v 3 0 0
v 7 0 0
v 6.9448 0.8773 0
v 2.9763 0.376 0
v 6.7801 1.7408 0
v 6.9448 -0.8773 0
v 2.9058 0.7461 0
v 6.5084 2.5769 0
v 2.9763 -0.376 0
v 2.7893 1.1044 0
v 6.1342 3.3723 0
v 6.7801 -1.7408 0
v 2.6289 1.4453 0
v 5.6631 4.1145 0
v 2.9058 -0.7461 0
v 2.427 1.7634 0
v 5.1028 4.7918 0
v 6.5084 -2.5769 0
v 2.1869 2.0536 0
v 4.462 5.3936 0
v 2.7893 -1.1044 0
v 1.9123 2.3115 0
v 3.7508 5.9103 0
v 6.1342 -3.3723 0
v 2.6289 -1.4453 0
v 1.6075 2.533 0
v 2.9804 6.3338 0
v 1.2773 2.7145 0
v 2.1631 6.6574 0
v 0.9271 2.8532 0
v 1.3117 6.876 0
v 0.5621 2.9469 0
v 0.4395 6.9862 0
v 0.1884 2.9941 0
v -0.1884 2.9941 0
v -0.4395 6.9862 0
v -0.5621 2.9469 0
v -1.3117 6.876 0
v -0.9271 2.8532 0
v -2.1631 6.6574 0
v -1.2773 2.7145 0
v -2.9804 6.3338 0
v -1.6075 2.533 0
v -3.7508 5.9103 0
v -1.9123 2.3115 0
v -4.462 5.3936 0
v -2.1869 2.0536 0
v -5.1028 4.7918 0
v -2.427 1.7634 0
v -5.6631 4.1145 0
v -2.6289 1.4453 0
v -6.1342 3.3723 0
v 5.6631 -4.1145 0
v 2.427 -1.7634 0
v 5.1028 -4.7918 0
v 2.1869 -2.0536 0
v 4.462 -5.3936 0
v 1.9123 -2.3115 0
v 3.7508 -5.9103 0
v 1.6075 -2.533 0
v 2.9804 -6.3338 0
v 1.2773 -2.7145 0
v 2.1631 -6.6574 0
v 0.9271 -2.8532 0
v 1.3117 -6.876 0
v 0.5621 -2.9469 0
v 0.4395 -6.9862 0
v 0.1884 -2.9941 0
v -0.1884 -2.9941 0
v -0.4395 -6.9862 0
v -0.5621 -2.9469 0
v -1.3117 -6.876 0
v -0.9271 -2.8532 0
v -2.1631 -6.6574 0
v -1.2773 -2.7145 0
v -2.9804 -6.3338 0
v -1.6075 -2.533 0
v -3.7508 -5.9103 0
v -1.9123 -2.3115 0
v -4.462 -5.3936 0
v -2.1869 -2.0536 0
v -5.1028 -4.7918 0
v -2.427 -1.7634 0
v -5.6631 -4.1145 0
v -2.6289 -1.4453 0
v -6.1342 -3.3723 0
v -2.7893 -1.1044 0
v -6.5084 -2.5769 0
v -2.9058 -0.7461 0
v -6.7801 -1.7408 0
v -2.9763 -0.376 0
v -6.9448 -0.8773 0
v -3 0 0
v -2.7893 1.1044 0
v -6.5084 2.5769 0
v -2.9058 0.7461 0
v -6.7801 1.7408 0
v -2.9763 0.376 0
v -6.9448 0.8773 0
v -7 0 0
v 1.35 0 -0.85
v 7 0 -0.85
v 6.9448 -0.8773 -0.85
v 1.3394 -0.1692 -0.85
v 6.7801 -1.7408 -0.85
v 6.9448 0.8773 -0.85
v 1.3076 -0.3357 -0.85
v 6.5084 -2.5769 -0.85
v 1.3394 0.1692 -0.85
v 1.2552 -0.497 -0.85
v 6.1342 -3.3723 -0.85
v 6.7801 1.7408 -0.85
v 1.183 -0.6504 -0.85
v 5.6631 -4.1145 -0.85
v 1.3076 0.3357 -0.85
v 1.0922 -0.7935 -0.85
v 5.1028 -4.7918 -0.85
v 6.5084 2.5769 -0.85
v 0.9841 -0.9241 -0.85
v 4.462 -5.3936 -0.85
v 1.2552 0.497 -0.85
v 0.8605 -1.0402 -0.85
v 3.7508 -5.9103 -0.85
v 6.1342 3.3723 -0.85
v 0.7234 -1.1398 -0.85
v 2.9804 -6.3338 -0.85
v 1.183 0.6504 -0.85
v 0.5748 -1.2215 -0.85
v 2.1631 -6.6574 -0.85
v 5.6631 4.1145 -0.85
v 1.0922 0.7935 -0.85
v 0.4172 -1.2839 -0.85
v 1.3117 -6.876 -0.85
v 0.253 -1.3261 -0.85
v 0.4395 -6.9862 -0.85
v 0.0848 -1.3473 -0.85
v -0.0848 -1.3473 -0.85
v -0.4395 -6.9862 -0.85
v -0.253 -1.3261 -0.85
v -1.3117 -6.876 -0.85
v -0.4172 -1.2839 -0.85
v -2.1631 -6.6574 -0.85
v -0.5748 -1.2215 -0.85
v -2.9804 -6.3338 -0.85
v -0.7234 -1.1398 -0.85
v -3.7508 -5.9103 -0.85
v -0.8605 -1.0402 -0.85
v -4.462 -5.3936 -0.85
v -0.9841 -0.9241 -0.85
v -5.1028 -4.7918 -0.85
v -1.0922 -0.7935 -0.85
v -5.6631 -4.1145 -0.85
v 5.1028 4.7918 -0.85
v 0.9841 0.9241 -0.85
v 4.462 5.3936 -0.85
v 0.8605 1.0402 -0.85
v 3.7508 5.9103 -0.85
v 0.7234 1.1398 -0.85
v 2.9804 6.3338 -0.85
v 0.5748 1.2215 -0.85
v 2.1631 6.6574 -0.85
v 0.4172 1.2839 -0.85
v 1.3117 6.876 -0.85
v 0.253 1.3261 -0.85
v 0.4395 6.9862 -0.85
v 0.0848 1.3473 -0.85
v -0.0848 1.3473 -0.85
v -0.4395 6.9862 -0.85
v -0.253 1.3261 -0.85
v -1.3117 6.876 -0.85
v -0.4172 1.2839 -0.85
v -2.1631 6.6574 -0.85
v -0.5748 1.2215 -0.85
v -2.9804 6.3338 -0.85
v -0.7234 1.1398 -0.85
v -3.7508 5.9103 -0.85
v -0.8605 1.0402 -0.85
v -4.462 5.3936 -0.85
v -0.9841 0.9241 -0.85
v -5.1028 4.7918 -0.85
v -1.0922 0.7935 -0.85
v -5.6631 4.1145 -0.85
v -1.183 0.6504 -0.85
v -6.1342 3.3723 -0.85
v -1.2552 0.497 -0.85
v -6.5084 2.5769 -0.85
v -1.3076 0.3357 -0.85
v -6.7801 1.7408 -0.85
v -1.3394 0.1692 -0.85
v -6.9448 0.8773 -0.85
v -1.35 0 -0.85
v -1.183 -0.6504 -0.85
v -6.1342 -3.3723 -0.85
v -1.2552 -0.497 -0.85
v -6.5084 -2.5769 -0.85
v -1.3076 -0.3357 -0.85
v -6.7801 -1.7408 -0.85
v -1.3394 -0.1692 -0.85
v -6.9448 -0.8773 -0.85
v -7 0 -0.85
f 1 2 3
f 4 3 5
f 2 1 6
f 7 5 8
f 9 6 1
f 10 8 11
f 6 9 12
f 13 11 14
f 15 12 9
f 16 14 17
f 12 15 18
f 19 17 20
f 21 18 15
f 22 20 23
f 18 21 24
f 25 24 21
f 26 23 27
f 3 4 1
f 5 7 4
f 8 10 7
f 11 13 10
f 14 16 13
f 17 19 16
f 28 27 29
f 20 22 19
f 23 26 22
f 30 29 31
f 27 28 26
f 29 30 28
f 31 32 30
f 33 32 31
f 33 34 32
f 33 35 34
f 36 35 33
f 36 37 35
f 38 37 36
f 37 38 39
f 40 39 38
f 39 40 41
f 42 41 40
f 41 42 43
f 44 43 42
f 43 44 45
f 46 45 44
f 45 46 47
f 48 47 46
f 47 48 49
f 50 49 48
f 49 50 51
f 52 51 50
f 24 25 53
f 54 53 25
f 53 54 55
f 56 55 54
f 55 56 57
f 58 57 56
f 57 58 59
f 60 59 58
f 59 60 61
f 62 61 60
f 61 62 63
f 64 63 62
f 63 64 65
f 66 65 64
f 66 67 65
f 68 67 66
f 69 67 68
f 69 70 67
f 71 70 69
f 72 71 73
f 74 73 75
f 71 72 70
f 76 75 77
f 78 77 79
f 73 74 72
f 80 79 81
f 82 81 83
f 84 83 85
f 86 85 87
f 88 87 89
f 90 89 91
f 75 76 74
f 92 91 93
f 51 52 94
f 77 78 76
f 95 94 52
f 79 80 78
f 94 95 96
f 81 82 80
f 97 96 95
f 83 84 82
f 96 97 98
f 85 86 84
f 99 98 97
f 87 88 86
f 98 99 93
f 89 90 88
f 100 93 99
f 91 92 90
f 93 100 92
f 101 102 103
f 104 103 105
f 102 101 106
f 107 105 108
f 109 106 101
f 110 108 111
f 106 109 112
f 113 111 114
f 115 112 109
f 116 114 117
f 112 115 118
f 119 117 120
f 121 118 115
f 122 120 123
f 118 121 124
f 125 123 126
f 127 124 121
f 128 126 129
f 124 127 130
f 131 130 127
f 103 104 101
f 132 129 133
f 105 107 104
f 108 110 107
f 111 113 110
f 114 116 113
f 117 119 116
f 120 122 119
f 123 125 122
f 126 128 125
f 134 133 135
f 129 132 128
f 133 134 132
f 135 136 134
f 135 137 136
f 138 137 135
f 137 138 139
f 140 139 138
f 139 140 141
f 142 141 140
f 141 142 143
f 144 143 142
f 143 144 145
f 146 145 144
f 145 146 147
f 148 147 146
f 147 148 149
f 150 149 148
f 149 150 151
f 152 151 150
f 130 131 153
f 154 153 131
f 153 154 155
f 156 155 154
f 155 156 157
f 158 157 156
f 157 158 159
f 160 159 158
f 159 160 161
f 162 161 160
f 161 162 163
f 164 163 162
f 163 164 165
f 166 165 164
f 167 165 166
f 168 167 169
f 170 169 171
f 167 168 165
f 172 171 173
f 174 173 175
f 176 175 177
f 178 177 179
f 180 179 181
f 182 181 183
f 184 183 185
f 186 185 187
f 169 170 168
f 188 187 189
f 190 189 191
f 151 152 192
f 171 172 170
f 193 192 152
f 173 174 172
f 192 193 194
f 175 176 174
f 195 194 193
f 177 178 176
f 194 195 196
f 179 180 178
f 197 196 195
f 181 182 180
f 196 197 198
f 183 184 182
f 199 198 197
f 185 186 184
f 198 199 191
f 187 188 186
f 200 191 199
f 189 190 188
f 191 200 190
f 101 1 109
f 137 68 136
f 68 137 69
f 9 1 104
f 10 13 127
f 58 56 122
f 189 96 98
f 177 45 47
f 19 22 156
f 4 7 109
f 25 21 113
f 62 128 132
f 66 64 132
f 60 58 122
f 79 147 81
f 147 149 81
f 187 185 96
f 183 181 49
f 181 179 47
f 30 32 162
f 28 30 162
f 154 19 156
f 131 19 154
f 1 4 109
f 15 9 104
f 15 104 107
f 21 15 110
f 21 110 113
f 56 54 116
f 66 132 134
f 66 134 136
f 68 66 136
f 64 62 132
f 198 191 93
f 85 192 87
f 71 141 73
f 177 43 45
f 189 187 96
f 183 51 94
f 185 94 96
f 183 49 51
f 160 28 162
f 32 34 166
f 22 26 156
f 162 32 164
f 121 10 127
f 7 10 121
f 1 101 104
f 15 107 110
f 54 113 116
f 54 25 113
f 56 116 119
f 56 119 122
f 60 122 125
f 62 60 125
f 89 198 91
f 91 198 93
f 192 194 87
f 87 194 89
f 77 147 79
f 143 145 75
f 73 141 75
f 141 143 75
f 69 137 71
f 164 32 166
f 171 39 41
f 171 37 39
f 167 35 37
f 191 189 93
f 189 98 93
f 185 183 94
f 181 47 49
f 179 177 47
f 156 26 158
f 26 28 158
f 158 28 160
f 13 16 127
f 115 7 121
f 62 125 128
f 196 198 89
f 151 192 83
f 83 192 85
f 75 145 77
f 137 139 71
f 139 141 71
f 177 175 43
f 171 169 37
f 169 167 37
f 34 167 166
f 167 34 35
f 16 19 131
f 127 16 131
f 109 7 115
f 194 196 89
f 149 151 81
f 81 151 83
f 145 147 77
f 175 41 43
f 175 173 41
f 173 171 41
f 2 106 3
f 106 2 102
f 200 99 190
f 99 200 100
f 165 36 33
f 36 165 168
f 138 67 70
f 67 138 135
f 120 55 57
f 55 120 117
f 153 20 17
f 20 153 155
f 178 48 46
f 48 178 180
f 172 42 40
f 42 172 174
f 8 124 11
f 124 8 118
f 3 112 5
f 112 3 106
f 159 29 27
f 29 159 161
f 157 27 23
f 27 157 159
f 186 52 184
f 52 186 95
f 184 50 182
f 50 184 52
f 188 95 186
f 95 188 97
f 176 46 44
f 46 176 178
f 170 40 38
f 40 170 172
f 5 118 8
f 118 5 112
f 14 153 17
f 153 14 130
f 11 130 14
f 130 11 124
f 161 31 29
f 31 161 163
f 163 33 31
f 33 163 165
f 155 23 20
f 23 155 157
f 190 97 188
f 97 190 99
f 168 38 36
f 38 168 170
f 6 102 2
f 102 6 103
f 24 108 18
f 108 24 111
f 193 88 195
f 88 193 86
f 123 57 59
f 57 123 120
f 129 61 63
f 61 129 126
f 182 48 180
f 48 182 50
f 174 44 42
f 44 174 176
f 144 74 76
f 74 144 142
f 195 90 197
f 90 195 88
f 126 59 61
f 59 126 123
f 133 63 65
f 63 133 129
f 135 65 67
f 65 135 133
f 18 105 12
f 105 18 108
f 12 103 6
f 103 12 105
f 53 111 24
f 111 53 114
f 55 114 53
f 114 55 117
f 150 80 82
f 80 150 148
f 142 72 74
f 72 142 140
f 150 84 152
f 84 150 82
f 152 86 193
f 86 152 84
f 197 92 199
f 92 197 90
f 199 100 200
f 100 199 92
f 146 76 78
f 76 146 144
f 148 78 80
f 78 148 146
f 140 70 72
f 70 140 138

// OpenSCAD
$fn = 50;


difference() {
	union() {
		translate(v = [0, 0, -0.8500000000]) {
			cylinder(h = 0.8500000000, r = 7.0000000000);
		}
	}
	union() {
		translate(v = [0, 0, 0]) {
			rotate(a = [0, 0, 0]) {
				difference() {
					union() {
						#translate(v = [0, 0, -0.8500000000]) {
							cylinder(h = 0.8500000000, r = 1.0000000000);
						}
						#translate(v = [0, 0, -0.8500000000]) {
							cylinder(h = 0.8500000000, r1 = 1.3500000000, r2 = 3.0000000000);
						}
						#translate(v = [0, 0, -0.8500000000]) {
							cylinder(h = 0.8500000000, r = 1.3500000000);
						}
						#translate(v = [0, 0, -0.8500000000]) {
							cylinder(h = 0.8500000000, r = 1.0000000000);
						}
					}
					union();
				}
			}
		}
	}
}
